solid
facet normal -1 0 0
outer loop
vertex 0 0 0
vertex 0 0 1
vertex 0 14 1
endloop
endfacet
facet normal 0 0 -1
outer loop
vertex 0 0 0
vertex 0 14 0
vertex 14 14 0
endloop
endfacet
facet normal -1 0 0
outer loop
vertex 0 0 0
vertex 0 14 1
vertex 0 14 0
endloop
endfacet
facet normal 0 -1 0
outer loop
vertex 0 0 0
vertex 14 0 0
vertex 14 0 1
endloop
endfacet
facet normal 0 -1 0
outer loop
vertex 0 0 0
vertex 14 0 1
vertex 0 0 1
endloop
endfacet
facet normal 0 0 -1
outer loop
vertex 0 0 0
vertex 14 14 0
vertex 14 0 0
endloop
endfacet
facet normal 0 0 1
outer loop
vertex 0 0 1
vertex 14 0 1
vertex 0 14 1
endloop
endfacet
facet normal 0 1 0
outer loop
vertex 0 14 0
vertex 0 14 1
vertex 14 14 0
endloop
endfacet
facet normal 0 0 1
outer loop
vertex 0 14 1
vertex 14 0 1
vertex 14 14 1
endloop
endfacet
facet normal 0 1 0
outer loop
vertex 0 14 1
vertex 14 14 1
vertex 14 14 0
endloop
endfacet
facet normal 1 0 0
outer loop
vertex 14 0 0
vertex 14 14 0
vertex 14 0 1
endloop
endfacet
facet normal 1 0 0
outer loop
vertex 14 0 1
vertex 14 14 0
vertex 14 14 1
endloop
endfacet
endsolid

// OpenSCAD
/* Warning, this is a very basic generator with a lot of approximation 
input data : [TQFP, ZMX, 14x14x1.0mm, 128, , B, C04-00502B]
generated by com.zoubworld.electronics.cad.model3d.Basic
Date : Sun Feb 15 10:50:48 CET 2026
*/

//body
color("black")
translate([0,0,0])
cube([14.0,14.0,1.0], center=false);
